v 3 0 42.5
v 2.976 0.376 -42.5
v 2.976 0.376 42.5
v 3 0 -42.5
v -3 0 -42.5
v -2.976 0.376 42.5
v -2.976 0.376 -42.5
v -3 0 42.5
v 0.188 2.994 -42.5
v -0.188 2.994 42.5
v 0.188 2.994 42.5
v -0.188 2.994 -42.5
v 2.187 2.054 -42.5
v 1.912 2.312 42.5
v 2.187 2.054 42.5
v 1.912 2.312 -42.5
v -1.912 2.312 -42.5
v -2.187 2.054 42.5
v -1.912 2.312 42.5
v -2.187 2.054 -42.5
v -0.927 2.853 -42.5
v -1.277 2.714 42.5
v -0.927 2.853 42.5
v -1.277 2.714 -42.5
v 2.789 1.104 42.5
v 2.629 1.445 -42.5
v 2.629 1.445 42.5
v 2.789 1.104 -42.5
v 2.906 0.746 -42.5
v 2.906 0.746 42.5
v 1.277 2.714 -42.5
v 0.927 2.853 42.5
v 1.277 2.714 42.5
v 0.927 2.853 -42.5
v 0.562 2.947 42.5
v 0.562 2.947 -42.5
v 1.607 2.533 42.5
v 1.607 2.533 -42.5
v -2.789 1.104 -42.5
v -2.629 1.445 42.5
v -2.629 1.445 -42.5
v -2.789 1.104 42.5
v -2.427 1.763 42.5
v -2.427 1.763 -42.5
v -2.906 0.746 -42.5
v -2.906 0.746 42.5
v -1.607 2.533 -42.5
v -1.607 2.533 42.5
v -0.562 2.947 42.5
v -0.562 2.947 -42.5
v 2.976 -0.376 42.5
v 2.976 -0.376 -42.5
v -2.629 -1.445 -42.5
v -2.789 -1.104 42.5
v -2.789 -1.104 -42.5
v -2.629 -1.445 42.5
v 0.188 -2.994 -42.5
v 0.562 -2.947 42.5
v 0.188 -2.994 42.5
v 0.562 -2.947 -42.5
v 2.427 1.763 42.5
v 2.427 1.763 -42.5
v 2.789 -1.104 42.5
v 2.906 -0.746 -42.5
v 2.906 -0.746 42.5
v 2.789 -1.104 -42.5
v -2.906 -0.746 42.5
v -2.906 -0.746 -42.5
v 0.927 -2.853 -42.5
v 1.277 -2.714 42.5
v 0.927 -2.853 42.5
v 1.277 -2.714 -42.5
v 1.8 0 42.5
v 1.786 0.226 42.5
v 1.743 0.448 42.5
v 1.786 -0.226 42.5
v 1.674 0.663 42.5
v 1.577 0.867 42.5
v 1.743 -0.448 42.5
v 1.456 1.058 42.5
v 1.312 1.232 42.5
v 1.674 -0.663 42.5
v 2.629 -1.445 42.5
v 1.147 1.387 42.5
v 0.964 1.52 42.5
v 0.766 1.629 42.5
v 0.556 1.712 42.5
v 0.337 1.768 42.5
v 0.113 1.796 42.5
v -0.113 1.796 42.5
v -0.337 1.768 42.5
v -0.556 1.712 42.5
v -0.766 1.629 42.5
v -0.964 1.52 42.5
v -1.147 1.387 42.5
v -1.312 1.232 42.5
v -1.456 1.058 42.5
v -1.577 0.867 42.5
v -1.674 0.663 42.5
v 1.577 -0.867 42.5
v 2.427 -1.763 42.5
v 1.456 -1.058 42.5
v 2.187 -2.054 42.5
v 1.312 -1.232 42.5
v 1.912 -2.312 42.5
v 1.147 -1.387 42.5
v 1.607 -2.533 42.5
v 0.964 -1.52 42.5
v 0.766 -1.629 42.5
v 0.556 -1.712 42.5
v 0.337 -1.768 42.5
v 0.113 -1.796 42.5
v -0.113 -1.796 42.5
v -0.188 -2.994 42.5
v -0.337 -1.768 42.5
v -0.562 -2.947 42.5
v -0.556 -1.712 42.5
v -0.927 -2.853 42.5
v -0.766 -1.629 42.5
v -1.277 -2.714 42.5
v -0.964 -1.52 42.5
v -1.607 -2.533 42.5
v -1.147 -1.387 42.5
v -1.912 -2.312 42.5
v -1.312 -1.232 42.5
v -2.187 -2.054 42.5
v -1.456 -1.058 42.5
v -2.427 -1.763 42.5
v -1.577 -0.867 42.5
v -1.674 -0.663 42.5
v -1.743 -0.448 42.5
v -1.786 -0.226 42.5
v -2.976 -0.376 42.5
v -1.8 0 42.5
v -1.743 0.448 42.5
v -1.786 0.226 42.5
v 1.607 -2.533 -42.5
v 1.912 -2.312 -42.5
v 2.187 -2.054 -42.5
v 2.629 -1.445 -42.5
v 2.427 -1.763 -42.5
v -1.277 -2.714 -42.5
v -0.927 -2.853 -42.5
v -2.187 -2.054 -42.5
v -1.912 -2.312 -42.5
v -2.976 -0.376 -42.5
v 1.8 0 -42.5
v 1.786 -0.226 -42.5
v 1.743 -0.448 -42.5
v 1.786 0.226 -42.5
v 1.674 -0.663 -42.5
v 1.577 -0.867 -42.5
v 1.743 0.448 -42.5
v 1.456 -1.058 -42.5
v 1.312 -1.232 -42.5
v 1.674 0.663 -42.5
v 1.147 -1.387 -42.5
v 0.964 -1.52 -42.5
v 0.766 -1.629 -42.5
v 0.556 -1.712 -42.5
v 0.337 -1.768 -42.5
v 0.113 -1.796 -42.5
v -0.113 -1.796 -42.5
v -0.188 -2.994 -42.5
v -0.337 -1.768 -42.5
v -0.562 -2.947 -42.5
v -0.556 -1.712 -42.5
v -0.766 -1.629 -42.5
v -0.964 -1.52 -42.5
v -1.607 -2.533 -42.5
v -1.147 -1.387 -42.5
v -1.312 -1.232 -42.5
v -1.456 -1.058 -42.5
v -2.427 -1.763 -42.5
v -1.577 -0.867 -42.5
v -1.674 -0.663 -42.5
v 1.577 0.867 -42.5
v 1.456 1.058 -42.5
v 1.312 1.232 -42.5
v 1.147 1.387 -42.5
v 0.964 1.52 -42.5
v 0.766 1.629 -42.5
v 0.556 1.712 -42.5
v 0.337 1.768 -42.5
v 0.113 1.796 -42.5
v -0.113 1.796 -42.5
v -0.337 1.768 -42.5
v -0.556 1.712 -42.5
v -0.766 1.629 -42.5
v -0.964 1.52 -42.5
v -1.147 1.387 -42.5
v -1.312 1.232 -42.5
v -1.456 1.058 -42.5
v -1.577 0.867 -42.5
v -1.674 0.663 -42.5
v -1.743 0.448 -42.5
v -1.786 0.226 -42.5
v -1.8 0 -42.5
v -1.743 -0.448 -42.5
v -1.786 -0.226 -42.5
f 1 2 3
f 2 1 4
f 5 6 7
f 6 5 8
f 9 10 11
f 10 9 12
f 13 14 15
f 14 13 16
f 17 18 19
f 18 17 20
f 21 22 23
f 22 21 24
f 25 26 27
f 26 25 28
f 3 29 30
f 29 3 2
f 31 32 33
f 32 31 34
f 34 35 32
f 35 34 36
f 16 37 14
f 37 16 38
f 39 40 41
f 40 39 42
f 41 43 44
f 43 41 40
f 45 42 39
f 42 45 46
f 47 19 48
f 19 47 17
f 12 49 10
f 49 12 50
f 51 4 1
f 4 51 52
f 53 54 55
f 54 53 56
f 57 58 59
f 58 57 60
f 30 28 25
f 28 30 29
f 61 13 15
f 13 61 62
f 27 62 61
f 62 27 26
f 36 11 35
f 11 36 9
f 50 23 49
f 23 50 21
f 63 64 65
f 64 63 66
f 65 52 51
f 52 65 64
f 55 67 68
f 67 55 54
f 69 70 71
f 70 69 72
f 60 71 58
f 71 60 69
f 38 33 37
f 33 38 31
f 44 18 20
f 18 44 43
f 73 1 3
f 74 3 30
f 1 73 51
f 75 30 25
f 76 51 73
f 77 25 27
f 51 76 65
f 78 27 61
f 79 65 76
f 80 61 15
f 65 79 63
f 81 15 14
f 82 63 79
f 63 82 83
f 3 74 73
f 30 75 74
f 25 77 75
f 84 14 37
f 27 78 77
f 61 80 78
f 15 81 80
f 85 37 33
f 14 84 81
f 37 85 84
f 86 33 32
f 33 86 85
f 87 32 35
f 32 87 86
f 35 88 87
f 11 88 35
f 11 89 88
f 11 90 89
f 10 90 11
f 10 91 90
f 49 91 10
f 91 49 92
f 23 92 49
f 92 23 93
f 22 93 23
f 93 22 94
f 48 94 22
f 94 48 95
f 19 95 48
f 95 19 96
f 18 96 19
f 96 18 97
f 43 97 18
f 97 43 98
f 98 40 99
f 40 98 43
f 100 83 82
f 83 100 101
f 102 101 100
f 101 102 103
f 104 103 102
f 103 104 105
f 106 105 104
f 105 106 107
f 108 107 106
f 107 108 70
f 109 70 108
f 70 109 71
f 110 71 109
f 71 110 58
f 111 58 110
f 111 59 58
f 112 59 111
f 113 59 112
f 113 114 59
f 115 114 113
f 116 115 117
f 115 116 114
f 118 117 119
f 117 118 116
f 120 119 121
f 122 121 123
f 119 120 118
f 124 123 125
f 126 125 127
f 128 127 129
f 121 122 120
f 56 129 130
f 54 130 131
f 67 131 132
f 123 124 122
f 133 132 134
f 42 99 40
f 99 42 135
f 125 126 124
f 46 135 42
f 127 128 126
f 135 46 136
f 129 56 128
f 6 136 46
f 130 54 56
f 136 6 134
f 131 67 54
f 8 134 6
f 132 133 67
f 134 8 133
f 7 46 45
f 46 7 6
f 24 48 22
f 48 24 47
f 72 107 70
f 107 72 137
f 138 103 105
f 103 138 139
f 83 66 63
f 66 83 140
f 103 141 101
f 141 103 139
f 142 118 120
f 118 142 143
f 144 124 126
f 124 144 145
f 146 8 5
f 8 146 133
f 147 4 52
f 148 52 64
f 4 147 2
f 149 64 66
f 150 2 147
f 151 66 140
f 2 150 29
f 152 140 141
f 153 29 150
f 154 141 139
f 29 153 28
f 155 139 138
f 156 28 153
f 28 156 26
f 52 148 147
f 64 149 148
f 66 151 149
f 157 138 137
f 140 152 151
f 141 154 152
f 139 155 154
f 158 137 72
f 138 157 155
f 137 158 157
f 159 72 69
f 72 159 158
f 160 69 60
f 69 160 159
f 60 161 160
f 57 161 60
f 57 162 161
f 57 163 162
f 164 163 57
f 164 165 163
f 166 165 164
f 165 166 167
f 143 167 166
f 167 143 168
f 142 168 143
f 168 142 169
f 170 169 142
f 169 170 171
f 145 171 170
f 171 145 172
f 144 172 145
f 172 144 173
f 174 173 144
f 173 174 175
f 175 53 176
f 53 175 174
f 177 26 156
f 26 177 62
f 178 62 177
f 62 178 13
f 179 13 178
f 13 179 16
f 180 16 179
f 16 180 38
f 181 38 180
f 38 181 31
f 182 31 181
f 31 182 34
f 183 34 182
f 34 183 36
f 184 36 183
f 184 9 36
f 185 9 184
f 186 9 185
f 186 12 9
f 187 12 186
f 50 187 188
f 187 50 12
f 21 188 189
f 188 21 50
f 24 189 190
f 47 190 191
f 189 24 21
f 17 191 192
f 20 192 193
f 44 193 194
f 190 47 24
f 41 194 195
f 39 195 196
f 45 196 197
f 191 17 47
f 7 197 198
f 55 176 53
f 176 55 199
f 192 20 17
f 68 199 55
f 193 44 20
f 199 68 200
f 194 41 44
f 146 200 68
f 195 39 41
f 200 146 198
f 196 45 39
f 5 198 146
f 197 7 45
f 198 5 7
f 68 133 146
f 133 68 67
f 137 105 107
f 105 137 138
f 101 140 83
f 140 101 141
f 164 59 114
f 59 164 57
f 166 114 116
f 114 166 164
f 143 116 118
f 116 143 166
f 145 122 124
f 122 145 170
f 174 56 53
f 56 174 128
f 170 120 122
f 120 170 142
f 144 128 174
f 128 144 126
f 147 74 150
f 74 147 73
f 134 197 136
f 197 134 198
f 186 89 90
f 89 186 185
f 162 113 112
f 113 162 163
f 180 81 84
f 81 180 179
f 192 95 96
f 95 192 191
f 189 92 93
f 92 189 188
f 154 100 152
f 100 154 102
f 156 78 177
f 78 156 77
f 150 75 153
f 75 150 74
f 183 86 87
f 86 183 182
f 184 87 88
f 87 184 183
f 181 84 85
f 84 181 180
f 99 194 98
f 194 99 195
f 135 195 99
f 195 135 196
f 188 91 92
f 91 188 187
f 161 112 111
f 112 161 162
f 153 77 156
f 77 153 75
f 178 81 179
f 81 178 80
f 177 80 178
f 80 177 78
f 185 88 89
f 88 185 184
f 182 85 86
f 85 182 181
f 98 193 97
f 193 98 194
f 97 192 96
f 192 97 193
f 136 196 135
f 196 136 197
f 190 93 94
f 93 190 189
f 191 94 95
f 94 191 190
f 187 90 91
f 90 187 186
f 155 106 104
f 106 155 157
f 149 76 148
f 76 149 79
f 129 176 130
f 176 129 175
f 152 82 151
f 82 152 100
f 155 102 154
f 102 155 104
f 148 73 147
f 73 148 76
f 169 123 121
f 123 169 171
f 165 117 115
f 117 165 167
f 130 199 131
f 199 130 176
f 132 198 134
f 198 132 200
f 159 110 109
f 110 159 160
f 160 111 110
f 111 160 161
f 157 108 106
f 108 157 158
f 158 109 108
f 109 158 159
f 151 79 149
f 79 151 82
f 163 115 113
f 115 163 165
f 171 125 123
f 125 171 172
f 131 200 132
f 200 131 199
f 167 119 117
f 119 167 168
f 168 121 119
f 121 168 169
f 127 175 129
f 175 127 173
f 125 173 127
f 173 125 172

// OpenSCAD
$fn = 50;


difference() {
	union() {
		translate(v = [0, 0, -42.5000000000]) {
			cylinder(h = 85, r = 3.0000000000);
		}
	}
	union() {
		translate(v = [0, 0, -100.0000000000]) {
			cylinder(h = 200, r = 1.8000000000);
		}
	}
}
